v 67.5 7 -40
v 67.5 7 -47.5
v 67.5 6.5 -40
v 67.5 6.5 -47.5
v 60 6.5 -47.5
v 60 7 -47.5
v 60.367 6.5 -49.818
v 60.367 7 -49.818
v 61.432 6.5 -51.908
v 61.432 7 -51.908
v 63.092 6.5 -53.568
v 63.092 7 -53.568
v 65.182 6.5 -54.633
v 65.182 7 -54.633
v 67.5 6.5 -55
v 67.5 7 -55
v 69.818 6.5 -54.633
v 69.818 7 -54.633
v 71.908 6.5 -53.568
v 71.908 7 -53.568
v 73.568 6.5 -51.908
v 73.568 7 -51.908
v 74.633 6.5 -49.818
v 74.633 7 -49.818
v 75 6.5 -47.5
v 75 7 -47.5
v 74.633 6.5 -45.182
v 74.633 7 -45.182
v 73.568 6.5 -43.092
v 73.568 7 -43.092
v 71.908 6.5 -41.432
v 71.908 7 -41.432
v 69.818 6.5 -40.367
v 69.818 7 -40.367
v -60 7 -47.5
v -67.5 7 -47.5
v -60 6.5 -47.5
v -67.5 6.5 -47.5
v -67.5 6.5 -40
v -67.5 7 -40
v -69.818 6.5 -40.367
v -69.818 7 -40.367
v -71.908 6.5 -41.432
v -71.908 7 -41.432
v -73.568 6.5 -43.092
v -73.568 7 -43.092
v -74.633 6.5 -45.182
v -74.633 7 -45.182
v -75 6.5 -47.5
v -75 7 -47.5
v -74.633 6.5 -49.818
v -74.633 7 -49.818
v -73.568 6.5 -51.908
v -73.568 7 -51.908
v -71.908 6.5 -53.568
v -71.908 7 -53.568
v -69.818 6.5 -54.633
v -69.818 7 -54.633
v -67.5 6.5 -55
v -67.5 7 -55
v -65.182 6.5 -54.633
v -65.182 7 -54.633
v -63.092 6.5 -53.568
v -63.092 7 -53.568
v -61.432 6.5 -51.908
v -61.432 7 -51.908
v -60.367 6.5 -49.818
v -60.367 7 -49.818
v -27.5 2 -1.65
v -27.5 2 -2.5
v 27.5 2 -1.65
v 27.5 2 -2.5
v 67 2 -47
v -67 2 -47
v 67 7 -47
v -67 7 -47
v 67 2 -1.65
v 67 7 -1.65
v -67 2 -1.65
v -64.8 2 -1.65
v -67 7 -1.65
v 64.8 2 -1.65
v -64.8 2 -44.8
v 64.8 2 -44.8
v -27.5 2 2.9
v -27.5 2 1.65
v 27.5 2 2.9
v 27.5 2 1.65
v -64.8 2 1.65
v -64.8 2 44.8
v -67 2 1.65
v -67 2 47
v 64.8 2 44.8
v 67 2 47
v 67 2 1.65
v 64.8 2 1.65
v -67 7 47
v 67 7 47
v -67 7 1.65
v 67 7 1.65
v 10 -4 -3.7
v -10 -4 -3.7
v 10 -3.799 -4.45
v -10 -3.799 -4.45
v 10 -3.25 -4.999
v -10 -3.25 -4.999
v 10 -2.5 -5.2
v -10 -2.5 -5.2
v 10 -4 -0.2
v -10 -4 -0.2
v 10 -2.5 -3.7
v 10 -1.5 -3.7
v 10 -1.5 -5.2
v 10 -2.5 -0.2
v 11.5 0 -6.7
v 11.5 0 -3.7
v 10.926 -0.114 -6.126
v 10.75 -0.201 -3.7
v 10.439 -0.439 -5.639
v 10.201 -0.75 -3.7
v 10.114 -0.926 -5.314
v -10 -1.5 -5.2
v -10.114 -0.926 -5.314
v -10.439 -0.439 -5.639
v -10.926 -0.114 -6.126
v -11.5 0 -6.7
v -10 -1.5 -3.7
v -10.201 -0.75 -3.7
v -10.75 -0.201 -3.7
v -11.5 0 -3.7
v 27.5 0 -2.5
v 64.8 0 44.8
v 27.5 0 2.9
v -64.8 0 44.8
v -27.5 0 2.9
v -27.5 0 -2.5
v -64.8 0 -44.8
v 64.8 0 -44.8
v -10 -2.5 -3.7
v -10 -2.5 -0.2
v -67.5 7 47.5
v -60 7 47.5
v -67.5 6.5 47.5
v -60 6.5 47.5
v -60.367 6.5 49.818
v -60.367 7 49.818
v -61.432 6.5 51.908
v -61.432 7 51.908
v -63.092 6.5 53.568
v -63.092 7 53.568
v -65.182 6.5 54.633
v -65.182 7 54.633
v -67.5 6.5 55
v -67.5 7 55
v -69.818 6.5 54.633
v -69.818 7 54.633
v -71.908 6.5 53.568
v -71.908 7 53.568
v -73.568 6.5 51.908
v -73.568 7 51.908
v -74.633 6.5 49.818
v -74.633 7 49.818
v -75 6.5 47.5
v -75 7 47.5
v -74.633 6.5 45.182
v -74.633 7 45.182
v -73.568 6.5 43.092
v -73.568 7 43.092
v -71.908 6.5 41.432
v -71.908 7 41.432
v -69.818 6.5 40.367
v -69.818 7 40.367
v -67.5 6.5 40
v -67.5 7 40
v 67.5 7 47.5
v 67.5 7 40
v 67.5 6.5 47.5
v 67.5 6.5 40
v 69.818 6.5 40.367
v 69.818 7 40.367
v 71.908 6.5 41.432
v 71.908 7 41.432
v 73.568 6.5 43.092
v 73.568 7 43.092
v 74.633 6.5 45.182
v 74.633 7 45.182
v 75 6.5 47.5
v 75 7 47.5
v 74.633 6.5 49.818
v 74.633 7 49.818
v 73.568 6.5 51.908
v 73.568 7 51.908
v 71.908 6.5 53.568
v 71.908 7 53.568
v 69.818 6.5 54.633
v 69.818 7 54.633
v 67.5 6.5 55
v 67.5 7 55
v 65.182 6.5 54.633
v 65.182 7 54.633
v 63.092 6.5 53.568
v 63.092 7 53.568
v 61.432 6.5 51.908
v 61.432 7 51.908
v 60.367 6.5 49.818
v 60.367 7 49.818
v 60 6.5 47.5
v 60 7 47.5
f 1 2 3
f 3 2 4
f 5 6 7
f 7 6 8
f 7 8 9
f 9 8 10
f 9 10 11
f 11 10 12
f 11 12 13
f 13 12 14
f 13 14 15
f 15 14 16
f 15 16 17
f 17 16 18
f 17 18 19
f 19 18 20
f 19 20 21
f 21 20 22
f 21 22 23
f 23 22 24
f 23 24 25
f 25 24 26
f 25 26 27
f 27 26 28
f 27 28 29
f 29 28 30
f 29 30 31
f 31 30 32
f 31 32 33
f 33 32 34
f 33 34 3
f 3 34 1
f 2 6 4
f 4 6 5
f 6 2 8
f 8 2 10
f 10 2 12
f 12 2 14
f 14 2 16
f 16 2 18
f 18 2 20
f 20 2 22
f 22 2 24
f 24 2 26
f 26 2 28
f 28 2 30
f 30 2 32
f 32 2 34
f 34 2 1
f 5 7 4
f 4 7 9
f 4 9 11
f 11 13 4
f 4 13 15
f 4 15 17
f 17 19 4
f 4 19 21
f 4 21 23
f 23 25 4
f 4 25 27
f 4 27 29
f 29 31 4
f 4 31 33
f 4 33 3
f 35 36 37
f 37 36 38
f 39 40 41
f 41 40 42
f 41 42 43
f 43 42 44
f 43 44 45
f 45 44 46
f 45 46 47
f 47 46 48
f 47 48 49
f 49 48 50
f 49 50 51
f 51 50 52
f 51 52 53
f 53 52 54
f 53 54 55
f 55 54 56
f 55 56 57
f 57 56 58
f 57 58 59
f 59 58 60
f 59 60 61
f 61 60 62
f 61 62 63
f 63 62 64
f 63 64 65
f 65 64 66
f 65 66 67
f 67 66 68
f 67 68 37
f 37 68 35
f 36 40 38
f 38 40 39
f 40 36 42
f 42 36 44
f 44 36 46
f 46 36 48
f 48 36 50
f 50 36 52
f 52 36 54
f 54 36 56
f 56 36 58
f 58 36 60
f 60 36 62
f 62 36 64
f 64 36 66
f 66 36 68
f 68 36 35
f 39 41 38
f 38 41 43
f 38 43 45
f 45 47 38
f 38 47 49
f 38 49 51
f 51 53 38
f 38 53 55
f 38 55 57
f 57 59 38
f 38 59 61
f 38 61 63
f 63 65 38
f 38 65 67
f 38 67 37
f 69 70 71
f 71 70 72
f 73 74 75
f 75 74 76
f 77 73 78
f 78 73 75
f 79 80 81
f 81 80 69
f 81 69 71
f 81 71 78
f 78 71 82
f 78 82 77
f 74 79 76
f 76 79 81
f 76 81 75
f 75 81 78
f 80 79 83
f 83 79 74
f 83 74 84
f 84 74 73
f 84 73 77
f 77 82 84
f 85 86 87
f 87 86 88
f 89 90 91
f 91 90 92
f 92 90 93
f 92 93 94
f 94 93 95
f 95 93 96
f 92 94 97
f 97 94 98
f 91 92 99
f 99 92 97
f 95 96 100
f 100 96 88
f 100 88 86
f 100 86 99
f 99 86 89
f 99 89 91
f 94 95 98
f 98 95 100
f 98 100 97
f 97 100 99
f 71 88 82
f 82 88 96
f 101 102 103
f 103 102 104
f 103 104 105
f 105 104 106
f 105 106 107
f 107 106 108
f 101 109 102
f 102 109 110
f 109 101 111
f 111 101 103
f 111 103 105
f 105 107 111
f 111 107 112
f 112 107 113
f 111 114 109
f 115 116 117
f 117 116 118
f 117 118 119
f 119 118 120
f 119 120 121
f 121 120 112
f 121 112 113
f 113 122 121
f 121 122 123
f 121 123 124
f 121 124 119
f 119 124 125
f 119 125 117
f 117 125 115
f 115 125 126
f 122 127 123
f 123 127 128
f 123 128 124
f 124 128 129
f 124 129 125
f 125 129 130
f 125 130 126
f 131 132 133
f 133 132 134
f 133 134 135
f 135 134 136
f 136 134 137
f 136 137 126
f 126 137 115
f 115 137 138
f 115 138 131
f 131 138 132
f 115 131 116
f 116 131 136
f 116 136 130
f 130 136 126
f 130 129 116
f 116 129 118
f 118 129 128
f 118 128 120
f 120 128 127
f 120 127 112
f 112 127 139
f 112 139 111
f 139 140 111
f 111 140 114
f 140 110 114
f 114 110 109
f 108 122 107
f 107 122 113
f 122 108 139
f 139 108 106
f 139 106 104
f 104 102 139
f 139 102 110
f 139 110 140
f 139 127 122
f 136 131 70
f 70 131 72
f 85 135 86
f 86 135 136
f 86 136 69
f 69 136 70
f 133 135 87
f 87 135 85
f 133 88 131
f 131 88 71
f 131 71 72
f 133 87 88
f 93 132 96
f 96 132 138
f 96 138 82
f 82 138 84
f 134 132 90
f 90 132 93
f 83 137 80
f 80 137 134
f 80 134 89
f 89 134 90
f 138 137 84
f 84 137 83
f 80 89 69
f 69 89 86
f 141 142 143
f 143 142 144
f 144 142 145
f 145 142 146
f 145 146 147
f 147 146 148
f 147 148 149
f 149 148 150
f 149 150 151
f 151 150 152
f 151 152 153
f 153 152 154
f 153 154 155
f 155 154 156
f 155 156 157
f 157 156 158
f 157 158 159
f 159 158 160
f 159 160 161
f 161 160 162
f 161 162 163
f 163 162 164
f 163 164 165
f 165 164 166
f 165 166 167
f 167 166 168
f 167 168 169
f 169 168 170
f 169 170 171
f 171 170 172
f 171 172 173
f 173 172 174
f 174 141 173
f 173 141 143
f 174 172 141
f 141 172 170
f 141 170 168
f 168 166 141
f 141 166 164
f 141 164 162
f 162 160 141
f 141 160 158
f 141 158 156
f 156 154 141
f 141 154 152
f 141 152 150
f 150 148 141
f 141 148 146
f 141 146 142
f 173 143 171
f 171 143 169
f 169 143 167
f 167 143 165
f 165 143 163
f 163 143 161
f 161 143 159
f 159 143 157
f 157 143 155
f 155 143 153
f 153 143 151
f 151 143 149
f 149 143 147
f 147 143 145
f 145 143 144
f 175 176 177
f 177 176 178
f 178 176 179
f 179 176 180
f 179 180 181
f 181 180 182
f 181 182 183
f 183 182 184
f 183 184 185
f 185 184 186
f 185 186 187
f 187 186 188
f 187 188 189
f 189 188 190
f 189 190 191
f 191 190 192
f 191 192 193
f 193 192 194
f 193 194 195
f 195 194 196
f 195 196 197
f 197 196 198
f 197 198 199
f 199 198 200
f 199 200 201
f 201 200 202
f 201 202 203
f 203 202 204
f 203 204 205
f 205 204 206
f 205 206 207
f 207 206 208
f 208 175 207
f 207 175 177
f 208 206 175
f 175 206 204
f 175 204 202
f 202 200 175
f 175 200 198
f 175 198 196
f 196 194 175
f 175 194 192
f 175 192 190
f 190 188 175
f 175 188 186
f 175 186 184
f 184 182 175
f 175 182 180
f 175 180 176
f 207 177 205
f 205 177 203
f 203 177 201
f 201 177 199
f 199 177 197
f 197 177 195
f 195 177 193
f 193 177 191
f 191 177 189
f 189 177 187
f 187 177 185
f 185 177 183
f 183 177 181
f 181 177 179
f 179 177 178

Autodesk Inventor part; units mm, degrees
ref_plane "YZ Plane" through (0, 0, 0) normal (1, 0, 0) x (0, 1, 0)
ref_plane "XZ Plane" through (0, 0, 0) normal (0, 1, 0) x (-1, 0, 0)
sketch "스케치1" plane through (0, 0, 0) normal (0, 1, 0) x (-1, 0, 0)
  line L0 (64.8, -44.8) -> (-64.8, -44.8)
  line L1 (-64.8, -44.8) -> (-64.8, 44.8)
  line L2 (-64.8, 44.8) -> (64.8, 44.8)
  line L3 (64.8, 44.8) -> (64.8, -44.8)
  line L4 (64.8, -44.8) -> (-64.8, 44.8) construction
  line L5 (-64.8, -44.8) -> (64.8, 44.8) construction
  line L6 (64.8, -1.7) -> (-64.8, -1.7)
  line L7 (-64.8, -1.7) -> (-64.8, 1.7)
  line L8 (-64.8, 1.7) -> (64.8, 1.7)
  line L9 (64.8, 1.7) -> (64.8, -1.7)
  line L10 (64.8, -1.7) -> (-64.8, 1.7) construction
  line L11 (-64.8, -1.7) -> (64.8, 1.7) construction
  line L12 (27.5, 6.5) -> (-27.5, 6.5)
  line L13 (-27.5, 6.5) -> (-27.5, -3.5)
  line L14 (-27.5, -3.5) -> (27.5, -3.5)
  line L15 (27.5, -3.5) -> (27.5, 6.5)
  line L16 (-27.5, -3.5) -> (-24.5, -3.5)
  line L17 (-24.5, -3.5) -> (-24.5, 6.5)
  line L18 (-24.5, 6.5) -> (-27.5, 6.5)
  line L19 (-27.5, 6.5) -> (-27.5, -3.5)
  line L20 (27.5, -3.5) -> (24.5, -3.5)
  line L21 (24.5, -3.5) -> (24.5, 6.5)
  line L22 (24.5, 6.5) -> (27.5, 6.5)
  line L23 (27.5, 6.5) -> (27.5, -3.5)
  line L24 (25.5, -2.5) -> (20.1, -2.5)
  line L25 (20.1, -2.5) -> (20.1, 2.9)
  line L26 (20.1, 2.9) -> (25.5, 2.9)
  line L27 (25.5, 2.9) -> (25.5, -2.5)
  line L28 (13.6, -2.5) -> (13.6, 2.9)
  line L29 (19, -2.5) -> (13.6, -2.5)
  line L30 (19, 2.9) -> (19, -2.5)
  line L31 (13.6, 2.9) -> (19, 2.9)
  line L32 (7.1, -2.5) -> (7.1, 2.9)
  line L33 (12.5, -2.5) -> (7.1, -2.5)
  line L34 (12.5, 2.9) -> (12.5, -2.5)
  line L35 (7.1, 2.9) -> (12.5, 2.9)
  line L36 (0.6, -2.5) -> (0.6, 2.9)
  line L37 (6, -2.5) -> (0.6, -2.5)
  line L38 (6, 2.9) -> (6, -2.5)
  line L39 (0.6, 2.9) -> (6, 2.9)
  line L40 (-5.9, -2.5) -> (-5.9, 2.9)
  line L41 (-0.5, -2.5) -> (-5.9, -2.5)
  line L42 (-0.5, 2.9) -> (-0.5, -2.5)
  line L43 (-5.9, 2.9) -> (-0.5, 2.9)
  line L44 (-12.4, -2.5) -> (-12.4, 2.9)
  line L45 (-7, -2.5) -> (-12.4, -2.5)
  line L46 (-7, 2.9) -> (-7, -2.5)
  line L47 (-12.4, 2.9) -> (-7, 2.9)
  line L48 (-18.9, -2.5) -> (-18.9, 2.9)
  line L49 (-13.5, -2.5) -> (-18.9, -2.5)
  line L50 (-13.5, 2.9) -> (-13.5, -2.5)
  line L51 (-18.9, 2.9) -> (-13.5, 2.9)
  line L52 (-25.4, -2.5) -> (-25.4, 2.9)
  line L53 (-20, -2.5) -> (-25.4, -2.5)
  line L54 (-20, 2.9) -> (-20, -2.5)
  line L55 (-25.4, 2.9) -> (-20, 2.9)
  line L56 (27.5, 2.9) -> (-27.5, 2.9)
  line L57 (27.5, -2.5) -> (-27.5, -2.5)
  point P0 (0, 0)
  point P1 (0, 6.5)
  point P2 (-27.5, 2.9)
  point P3 (27.5, 2.9)
  dimension "d0" = 129.6
  dimension "d1" = 89.6
  dimension "d2" = 3.4
  dimension "d14" = 55
  dimension "d15" = 10
  dimension "d16" = 3
  dimension "d17" = 3
  dimension "d18" = 5.4
  dimension "d19" = 5.4
  dimension "d20" = 2
  dimension "d21" = 1
  dimension "d22" = 6.5
  dimension "d24" = 2.5
extrude "돌출3" add sketch "스케치1" along normal blind 2 contours L0 L1 L6 L13 L14 L15 L3 | L6 L15 L8 L3 | L1 L8 L13 L6 | L8 L15 L12 L13 L1 L2 L3 | L15 L14 L21 L24 L57 | L57 L53 L17 L14 L13 | L56 L26 L21 L12 L15 | L13 L12 L17 L55 L56 | L21 L14 L17 L53 L57 L49 L45 L41 L37 L33 L29 L24 | L26 L56 L31 L35 L39 L43 L47 L51 L55 L17 L12 L21
ref_plane "작업 평면1" through (0, 0, -2.5) normal (-1, 0, 0) x (0, 0, 1)
sketch "스케치6" plane through (0, 0, -2.5) normal (-1, 0, 0) x (0, 0, 1)
  line L0 (-1.2, 0) -> (-2.7, 0)
  line L1 (-2.7, 0) -> (-2.7, -4)
  line L2 (-2.7, -4) -> (-1.2, -4)
  line L3 (-1.2, -4) -> (-1.2, 0)
  line L4 (-2.7, -4) -> (2.3, -4)
  line L5 (2.3, -4) -> (2.3, -2.5)
  line L6 (2.3, -2.5) -> (-2.7, -2.5)
  line L7 (-2.7, -2.5) -> (-2.7, -4)
  point P0 (2.5, 0)
  point P1 (0, 0)
  point P2 (-1.2, -4)
  point P3 (-1.2, -2.5)
  dimension "d37" = 1.5
  dimension "d38" = 1.5
  dimension "d39" = 2.5
  dimension "d40" = 1.2
  dimension "d41" = 5
extrude "돌출5" add sketch "스케치6" along normal mid plane 20
fillet "모깎기1" radius 1.5 4 edges at (-10, 0, -4.45) (0, 0, -5.2) (10, 0, -4.45) (0, -4, -5.2)
sketch "스케치7" plane through (0, 2, 0) normal (0, 1, 0) x (1, 0, 0)
  line L0 (67, -47) -> (-67, -47)
  line L1 (-67, -47) -> (-67, 47)
  line L2 (-67, 47) -> (67, 47)
  line L3 (67, 47) -> (67, -47)
  line L4 (67, -47) -> (-67, 47) construction
  line L5 (-67, -47) -> (67, 47) construction
  line L6 (64.8, 44.8) -> (-64.8, 44.8) projected
  line L7 (-64.8, 44.8) -> (-64.8, -44.8) projected
  line L8 (-64.8, -44.8) -> (64.8, -44.8) projected
  line L9 (64.8, -44.8) -> (64.8, 44.8) projected
  line L10 (27.5, 2.5) -> (27.5, -2.9) projected
  line L11 (27.5, -2.9) -> (-27.5, -2.9) projected
  line L12 (-27.5, -2.9) -> (-27.5, 2.5) projected
  line L13 (-27.5, 2.5) -> (27.5, 2.5) projected
  line L14 (64.8, -44.8) -> (64.8, 44.8) projected
  line L15 (-67, -1.65) -> (67, -1.65)
  line L16 (67, -1.65) -> (67, 1.65)
  line L17 (67, 1.65) -> (-67, 1.65)
  line L18 (-67, 1.65) -> (-67, -1.65)
  line L19 (-67, -1.65) -> (67, 1.65) construction
  line L20 (67, -1.65) -> (-67, 1.65) construction
  point P0 (0, 0)
  point P1 (67, -2.9)
  point P2 (67, 2.5)
  point P3 (0, -2.9)
  point P4 (0, 2.5)
  dimension "d1" = 89.6
  dimension "d45" = 134
  dimension "d46" = 94
  dimension "d58" = 3.3
extrude "돌출6" add sketch "스케치7" along normal blind 5 contours L0 L1 L15 L7 L8 L9 L3 | L17 L9 L6 L7 L1 L2 L3 | L9 L8 L7 L15 L12 L11 L10 | L17 L10 L13 L12 L7 L6 L9 | L10 L11 L12 L15 | L17 L12 L13 L10
sketch "스케치8" plane through (0, 7, 0) normal (0, 1, 0) x (1, 0, 0)
  line L0 (67, 1.65) -> (67, 47) projected
  line L1 (67, 47) -> (-67, 47) projected
  line L2 (-67, 47) -> (-67, 1.65) projected
  line L3 (67.5, 47.5) -> (67.5, 2)
  line L4 (67.5, 2) -> (-67.5, 2)
  line L5 (-67.5, 2) -> (-67.5, 47.5)
  line L6 (-67.5, 47.5) -> (67.5, 47.5)
  circle A0 centre (67.5, 47.5) radius 7.5
  circle A1 centre (-67.5, 47.5) radius 7.5
  line L7 (-67, -47) -> (67, -47) projected
  line L8 (-67, 1.65) -> (67, 1.65) projected
  line L9 (67, -47) -> (67, -1.65) projected
  line L10 (67, -1.65) -> (-67, -1.65) projected
  line L11 (-67, -1.65) -> (-67, -47) projected
  point P0 (0, 0)
  point P1 (67.5, 40)
  point P2 (60, 47.5)
  point P3 (-60, 47.5)
  point P4 (-67.5, 40)
  dimension "d49" = 0.5
  dimension "d50" = 15
  dimension "d56" = 15
extrude "돌출7" add sketch "스케치8" against normal blind 0.5 contours L3 L6 A0 | A1 L6 L5
mirror "미러1" about plane through (0, 0, 0) normal (0, 0, 1) of "돌출7"
properties part number "case_cover_v2"
